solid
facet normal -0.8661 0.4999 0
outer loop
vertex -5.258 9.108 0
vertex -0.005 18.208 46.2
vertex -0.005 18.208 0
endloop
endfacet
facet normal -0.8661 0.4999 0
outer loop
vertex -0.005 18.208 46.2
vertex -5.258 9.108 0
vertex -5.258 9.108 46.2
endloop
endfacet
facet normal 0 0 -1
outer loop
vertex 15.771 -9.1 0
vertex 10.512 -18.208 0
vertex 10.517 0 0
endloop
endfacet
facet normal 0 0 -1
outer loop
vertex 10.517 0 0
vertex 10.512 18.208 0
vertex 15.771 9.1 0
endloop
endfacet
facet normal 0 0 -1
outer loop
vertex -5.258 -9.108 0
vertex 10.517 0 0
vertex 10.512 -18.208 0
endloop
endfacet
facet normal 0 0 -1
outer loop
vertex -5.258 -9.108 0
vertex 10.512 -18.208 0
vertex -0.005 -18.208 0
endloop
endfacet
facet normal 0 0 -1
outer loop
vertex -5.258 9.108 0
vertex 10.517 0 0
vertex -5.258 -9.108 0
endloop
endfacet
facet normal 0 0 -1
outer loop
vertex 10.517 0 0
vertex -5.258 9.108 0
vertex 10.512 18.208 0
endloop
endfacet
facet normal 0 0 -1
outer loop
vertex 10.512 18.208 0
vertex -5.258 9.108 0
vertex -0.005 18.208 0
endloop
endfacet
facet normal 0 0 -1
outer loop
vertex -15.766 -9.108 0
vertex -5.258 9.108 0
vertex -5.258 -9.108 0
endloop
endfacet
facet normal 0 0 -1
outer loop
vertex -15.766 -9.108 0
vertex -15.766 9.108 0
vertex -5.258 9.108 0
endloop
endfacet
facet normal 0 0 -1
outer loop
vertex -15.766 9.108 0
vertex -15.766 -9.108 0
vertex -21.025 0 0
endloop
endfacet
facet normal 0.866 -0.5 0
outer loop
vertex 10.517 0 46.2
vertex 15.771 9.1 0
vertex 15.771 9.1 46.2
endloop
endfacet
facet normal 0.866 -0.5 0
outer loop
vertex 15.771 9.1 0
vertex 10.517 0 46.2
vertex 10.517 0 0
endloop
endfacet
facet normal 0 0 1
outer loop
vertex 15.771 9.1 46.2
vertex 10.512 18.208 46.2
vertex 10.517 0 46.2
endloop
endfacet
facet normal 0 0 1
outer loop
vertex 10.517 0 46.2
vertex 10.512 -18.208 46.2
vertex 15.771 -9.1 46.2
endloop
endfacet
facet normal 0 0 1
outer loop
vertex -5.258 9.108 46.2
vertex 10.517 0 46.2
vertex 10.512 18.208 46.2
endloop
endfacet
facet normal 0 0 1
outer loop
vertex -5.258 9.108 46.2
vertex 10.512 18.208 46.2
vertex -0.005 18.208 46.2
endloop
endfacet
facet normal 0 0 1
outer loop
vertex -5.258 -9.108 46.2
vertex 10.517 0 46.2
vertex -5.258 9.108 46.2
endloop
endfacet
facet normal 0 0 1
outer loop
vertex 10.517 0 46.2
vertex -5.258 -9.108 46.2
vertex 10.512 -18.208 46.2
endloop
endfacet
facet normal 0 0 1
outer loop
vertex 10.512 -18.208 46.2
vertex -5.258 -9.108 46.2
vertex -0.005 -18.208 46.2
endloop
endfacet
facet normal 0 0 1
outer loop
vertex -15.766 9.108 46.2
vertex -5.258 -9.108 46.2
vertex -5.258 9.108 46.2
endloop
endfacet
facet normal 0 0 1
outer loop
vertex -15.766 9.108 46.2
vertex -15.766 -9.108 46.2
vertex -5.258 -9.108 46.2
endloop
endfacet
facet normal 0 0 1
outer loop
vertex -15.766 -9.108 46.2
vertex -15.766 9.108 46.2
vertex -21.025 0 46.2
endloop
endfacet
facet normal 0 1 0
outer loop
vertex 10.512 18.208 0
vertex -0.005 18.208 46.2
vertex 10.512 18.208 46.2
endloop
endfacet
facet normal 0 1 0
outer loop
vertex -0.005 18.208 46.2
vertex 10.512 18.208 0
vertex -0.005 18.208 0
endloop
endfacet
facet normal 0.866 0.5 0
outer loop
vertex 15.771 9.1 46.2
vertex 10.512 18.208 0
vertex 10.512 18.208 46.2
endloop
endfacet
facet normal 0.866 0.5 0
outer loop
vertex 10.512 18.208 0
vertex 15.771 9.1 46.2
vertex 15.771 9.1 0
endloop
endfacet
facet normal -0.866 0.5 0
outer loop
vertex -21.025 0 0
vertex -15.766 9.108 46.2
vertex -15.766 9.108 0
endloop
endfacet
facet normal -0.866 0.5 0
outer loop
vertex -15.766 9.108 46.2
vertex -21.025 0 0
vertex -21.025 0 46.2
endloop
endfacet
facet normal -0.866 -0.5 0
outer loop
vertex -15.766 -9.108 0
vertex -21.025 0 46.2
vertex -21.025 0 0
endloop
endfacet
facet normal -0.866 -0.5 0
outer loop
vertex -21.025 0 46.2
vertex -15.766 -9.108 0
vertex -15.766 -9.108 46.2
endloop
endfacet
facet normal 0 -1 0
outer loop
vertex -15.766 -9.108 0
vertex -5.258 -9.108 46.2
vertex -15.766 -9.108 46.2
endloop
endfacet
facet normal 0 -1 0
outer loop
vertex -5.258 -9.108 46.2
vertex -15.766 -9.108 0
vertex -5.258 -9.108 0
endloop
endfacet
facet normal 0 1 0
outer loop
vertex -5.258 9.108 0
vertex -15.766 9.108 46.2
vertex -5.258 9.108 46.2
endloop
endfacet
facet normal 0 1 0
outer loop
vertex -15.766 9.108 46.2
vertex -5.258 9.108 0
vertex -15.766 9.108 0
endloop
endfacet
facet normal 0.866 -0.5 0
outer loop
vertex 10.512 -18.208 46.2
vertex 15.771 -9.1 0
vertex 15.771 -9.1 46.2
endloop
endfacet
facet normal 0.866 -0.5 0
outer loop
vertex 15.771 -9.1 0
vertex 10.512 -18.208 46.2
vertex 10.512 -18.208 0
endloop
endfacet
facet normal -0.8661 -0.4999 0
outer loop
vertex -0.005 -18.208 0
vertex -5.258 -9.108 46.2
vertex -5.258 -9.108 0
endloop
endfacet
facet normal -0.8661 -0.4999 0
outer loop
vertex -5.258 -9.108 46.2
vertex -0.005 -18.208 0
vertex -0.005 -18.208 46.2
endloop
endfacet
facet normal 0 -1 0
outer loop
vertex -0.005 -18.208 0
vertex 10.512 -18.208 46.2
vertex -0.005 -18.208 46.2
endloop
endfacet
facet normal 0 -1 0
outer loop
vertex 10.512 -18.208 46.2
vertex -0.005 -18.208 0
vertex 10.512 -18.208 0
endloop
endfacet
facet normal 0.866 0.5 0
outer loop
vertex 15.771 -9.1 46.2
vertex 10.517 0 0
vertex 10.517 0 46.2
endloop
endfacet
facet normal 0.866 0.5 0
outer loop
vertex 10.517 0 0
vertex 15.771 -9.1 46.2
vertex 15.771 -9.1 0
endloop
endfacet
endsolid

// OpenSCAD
// file: dimensions.scad
measureX = 9.10; // 92/2/2/sqrt(19)*sqrt(3)
measureY = 9.10; 
measureZ = 7.7; // 54/7 is about 7.7

halfSide = 1*tan(30);
h1 = 1;
dd = 0.001;
// main file
include <dimensions.scad>

hh = [6,6,6];

scale([measureX,measureY,measureZ])  union() {
    translate([halfSide,1,0]) 
    linear_extrude(height = hh[0]*h1, center = false)
    circle(2*halfSide + dd,$fn=6);
    
    translate([-2*halfSide,0,0]) 
    linear_extrude(height = hh[1]*h1, center = false)
    circle(2*halfSide + dd,$fn=6);
    
    translate([halfSide,-1,0]) 
    linear_extrude(height = hh[2]*h1, center = false)
    circle(2*halfSide + dd,$fn=6);
}
